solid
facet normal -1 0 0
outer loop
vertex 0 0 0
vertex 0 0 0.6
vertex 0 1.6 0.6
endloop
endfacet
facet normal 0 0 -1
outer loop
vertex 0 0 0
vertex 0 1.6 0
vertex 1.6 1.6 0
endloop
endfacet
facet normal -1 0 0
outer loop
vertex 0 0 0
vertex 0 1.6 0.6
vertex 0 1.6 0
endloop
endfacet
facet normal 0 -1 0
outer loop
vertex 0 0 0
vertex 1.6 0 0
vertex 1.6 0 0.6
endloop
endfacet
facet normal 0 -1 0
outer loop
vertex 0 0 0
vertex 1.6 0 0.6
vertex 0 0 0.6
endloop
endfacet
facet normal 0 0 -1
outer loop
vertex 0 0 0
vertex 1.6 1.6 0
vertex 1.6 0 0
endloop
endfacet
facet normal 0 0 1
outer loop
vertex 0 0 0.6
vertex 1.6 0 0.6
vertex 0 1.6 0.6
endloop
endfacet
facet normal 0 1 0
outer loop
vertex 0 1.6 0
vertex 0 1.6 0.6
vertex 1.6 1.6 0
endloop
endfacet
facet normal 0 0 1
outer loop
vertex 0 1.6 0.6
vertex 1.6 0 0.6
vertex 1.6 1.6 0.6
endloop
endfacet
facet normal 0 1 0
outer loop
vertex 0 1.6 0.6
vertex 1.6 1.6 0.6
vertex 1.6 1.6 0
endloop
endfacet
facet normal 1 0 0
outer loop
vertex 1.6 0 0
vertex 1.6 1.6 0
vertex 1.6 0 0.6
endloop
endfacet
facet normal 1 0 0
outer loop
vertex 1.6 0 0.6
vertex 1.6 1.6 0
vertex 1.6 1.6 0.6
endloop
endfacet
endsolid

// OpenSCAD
/* Warning, this is a very basic generator with a lot of approximation 
input data : [UDFN, HKA, 1.6x1.6x0.6mm, 6, , A, C04-01154A]
generated by com.zoubworld.electronics.cad.model3d.Basic
Date : Sun Feb 15 10:50:49 CET 2026
*/

//body
color("black")
translate([0,0,0])
cube([1.6,1.6,0.6], center=false);
